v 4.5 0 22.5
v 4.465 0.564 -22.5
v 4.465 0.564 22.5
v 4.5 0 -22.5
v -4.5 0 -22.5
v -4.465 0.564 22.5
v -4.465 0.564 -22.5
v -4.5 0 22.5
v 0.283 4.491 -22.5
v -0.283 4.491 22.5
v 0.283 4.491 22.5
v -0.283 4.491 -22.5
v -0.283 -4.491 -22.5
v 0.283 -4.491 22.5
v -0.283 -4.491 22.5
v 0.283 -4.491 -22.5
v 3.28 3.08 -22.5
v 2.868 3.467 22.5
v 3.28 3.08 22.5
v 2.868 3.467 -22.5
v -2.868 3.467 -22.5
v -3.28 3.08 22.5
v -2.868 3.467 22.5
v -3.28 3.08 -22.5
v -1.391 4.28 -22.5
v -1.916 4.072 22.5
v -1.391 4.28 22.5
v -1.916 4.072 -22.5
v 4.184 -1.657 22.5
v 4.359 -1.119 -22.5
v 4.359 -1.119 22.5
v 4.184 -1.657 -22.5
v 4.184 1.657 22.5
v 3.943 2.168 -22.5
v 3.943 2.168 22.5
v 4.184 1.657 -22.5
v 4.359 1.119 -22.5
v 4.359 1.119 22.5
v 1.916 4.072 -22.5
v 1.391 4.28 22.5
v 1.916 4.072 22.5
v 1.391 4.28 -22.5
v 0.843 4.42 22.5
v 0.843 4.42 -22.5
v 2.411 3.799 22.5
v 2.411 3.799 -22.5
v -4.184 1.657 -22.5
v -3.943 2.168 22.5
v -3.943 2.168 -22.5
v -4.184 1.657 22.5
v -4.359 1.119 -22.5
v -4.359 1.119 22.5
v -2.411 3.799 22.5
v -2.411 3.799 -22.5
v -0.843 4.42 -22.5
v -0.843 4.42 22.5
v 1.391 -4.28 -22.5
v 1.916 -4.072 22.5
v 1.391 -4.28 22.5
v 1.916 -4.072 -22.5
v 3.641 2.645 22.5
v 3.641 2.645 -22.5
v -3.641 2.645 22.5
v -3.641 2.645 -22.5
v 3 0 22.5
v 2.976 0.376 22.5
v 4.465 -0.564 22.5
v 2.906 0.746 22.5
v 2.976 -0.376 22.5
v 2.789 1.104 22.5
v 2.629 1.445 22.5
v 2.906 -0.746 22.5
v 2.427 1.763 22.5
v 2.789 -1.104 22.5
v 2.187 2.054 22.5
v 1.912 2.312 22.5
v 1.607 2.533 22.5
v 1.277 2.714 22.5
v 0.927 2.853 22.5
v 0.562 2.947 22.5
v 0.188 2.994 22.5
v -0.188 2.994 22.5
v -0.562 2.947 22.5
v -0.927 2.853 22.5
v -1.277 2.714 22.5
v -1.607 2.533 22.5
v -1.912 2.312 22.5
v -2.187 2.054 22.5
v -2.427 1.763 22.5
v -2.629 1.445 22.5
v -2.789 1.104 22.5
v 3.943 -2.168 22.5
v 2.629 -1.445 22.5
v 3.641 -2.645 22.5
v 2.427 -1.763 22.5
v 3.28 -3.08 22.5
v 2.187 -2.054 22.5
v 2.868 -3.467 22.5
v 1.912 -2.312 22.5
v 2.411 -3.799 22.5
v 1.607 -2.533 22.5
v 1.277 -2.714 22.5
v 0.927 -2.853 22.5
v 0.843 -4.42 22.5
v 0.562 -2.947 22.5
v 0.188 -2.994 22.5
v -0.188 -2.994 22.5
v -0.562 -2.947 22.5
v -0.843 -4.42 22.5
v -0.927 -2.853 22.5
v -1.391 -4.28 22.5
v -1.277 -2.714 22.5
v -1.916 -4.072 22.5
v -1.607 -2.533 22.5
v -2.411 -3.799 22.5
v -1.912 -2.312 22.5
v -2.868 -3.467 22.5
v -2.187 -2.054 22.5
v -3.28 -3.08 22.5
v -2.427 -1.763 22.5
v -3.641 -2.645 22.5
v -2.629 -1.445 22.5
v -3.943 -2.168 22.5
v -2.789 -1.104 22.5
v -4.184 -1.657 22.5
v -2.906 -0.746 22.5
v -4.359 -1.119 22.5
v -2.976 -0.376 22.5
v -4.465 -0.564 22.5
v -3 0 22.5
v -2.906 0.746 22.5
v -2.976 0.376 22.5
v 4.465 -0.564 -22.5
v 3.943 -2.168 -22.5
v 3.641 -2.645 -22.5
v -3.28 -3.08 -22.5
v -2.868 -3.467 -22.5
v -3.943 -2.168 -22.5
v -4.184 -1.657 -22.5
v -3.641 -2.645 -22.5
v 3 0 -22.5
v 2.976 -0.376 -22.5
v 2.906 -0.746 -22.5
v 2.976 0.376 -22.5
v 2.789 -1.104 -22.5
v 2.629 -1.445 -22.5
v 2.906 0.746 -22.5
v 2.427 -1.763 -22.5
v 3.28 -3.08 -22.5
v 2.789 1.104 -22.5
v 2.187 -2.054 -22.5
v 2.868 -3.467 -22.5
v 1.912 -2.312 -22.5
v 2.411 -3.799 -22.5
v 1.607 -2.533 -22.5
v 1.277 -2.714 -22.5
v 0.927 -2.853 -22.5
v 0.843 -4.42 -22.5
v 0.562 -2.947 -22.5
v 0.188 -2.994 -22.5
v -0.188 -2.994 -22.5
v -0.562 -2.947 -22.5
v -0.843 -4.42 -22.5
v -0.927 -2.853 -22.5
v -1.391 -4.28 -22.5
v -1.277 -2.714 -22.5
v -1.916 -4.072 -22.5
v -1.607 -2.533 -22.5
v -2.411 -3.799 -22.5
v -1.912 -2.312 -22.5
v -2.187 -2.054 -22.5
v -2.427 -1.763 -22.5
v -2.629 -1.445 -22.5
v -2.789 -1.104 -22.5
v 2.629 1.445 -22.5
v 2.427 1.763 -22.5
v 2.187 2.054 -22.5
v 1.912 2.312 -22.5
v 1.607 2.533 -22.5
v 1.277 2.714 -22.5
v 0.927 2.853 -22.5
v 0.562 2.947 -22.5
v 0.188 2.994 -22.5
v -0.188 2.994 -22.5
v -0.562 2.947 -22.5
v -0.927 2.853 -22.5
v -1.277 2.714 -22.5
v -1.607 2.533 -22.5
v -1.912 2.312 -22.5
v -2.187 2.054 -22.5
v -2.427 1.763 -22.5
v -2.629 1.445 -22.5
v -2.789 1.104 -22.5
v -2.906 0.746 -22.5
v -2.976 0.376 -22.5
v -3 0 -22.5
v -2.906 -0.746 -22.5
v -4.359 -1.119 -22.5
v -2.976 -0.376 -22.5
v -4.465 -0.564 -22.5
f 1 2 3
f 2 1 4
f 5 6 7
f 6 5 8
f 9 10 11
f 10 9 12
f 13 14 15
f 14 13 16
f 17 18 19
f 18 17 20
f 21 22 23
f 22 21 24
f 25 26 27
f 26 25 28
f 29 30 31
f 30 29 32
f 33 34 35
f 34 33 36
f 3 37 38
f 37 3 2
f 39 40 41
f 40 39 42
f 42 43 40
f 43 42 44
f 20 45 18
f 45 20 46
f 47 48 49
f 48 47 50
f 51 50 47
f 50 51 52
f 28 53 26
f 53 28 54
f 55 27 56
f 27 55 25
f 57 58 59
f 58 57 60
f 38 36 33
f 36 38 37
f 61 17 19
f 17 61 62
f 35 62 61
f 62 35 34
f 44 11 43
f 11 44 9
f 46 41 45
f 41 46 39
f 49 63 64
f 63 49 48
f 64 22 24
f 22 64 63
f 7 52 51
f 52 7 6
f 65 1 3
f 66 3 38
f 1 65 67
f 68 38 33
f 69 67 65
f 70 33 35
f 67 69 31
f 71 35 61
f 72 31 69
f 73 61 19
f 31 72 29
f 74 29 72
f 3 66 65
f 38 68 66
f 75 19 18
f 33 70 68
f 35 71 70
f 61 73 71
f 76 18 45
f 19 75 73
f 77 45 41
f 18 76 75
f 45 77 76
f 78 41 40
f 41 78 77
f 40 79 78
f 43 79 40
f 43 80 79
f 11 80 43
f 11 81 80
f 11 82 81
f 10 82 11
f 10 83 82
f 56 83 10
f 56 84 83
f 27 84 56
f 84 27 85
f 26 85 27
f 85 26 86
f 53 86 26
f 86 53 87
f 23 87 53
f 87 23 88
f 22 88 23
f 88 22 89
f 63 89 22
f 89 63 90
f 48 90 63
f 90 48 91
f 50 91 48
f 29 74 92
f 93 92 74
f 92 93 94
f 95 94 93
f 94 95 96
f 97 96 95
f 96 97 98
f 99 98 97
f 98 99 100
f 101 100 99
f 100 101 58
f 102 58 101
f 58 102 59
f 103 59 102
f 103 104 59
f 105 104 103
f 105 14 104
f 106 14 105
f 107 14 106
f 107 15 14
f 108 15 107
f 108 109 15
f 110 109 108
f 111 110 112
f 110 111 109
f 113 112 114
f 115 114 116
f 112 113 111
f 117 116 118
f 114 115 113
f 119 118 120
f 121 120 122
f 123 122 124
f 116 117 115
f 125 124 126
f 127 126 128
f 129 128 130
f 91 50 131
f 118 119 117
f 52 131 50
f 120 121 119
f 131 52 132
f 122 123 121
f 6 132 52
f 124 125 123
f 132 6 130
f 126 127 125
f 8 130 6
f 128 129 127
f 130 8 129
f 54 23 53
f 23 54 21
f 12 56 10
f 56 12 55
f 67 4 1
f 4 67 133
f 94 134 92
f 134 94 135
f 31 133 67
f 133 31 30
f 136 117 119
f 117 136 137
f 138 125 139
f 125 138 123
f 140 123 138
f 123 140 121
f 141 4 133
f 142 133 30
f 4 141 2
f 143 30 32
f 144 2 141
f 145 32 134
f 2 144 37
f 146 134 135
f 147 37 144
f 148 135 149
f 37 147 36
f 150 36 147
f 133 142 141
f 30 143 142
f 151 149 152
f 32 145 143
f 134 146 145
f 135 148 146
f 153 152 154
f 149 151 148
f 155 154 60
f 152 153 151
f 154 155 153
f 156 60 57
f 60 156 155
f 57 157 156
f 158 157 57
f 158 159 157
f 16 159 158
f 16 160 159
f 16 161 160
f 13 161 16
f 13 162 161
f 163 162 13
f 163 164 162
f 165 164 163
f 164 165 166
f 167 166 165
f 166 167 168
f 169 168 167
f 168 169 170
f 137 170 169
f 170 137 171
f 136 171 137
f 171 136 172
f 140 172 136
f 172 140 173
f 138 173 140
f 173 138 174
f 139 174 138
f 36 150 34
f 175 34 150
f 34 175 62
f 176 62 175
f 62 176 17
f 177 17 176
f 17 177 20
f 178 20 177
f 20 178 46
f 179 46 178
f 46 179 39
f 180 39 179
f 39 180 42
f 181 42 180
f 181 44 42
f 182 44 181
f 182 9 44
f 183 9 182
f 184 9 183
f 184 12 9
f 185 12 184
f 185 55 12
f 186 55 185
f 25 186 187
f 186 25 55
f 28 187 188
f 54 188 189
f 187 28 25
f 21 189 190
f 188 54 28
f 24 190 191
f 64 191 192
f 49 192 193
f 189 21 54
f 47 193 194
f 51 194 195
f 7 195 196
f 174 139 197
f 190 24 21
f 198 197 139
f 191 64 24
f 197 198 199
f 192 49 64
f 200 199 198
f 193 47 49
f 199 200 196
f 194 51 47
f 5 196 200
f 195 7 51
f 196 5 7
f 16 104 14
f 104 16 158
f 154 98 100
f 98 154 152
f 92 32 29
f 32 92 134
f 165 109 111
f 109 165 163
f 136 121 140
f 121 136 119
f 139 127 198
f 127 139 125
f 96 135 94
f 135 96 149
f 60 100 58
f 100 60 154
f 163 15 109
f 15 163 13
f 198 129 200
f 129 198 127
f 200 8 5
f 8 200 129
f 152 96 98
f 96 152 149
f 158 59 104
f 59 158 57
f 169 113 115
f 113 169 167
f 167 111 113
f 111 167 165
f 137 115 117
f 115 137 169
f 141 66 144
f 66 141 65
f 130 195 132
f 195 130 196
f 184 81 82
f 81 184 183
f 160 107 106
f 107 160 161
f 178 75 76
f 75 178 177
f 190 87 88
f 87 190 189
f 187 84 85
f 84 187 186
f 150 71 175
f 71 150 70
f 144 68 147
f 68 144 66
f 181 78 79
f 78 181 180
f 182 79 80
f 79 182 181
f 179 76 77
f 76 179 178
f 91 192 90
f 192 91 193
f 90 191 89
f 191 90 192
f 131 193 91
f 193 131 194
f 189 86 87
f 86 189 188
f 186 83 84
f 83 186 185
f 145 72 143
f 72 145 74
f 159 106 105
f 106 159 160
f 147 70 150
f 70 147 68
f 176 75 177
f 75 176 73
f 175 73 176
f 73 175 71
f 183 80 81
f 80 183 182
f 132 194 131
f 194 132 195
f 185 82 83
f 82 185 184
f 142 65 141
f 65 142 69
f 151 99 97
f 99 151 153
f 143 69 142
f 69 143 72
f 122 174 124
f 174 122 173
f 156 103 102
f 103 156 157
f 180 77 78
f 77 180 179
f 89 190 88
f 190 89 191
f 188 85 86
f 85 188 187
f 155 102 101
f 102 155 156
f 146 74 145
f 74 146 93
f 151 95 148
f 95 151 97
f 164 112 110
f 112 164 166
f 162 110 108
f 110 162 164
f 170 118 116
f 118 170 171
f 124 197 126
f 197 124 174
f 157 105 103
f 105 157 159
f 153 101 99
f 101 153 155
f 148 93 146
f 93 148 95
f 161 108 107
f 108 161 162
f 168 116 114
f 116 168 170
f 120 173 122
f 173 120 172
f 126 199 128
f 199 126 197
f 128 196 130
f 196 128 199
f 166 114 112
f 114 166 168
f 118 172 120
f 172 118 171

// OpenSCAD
$fn = 50;


difference() {
	union() {
		translate(v = [0, 0, -22.5000000000]) {
			cylinder(h = 45, r = 4.5000000000);
		}
	}
	union() {
		translate(v = [0, 0, -100.0000000000]) {
			cylinder(h = 200, r = 3.0000000000);
		}
	}
}
